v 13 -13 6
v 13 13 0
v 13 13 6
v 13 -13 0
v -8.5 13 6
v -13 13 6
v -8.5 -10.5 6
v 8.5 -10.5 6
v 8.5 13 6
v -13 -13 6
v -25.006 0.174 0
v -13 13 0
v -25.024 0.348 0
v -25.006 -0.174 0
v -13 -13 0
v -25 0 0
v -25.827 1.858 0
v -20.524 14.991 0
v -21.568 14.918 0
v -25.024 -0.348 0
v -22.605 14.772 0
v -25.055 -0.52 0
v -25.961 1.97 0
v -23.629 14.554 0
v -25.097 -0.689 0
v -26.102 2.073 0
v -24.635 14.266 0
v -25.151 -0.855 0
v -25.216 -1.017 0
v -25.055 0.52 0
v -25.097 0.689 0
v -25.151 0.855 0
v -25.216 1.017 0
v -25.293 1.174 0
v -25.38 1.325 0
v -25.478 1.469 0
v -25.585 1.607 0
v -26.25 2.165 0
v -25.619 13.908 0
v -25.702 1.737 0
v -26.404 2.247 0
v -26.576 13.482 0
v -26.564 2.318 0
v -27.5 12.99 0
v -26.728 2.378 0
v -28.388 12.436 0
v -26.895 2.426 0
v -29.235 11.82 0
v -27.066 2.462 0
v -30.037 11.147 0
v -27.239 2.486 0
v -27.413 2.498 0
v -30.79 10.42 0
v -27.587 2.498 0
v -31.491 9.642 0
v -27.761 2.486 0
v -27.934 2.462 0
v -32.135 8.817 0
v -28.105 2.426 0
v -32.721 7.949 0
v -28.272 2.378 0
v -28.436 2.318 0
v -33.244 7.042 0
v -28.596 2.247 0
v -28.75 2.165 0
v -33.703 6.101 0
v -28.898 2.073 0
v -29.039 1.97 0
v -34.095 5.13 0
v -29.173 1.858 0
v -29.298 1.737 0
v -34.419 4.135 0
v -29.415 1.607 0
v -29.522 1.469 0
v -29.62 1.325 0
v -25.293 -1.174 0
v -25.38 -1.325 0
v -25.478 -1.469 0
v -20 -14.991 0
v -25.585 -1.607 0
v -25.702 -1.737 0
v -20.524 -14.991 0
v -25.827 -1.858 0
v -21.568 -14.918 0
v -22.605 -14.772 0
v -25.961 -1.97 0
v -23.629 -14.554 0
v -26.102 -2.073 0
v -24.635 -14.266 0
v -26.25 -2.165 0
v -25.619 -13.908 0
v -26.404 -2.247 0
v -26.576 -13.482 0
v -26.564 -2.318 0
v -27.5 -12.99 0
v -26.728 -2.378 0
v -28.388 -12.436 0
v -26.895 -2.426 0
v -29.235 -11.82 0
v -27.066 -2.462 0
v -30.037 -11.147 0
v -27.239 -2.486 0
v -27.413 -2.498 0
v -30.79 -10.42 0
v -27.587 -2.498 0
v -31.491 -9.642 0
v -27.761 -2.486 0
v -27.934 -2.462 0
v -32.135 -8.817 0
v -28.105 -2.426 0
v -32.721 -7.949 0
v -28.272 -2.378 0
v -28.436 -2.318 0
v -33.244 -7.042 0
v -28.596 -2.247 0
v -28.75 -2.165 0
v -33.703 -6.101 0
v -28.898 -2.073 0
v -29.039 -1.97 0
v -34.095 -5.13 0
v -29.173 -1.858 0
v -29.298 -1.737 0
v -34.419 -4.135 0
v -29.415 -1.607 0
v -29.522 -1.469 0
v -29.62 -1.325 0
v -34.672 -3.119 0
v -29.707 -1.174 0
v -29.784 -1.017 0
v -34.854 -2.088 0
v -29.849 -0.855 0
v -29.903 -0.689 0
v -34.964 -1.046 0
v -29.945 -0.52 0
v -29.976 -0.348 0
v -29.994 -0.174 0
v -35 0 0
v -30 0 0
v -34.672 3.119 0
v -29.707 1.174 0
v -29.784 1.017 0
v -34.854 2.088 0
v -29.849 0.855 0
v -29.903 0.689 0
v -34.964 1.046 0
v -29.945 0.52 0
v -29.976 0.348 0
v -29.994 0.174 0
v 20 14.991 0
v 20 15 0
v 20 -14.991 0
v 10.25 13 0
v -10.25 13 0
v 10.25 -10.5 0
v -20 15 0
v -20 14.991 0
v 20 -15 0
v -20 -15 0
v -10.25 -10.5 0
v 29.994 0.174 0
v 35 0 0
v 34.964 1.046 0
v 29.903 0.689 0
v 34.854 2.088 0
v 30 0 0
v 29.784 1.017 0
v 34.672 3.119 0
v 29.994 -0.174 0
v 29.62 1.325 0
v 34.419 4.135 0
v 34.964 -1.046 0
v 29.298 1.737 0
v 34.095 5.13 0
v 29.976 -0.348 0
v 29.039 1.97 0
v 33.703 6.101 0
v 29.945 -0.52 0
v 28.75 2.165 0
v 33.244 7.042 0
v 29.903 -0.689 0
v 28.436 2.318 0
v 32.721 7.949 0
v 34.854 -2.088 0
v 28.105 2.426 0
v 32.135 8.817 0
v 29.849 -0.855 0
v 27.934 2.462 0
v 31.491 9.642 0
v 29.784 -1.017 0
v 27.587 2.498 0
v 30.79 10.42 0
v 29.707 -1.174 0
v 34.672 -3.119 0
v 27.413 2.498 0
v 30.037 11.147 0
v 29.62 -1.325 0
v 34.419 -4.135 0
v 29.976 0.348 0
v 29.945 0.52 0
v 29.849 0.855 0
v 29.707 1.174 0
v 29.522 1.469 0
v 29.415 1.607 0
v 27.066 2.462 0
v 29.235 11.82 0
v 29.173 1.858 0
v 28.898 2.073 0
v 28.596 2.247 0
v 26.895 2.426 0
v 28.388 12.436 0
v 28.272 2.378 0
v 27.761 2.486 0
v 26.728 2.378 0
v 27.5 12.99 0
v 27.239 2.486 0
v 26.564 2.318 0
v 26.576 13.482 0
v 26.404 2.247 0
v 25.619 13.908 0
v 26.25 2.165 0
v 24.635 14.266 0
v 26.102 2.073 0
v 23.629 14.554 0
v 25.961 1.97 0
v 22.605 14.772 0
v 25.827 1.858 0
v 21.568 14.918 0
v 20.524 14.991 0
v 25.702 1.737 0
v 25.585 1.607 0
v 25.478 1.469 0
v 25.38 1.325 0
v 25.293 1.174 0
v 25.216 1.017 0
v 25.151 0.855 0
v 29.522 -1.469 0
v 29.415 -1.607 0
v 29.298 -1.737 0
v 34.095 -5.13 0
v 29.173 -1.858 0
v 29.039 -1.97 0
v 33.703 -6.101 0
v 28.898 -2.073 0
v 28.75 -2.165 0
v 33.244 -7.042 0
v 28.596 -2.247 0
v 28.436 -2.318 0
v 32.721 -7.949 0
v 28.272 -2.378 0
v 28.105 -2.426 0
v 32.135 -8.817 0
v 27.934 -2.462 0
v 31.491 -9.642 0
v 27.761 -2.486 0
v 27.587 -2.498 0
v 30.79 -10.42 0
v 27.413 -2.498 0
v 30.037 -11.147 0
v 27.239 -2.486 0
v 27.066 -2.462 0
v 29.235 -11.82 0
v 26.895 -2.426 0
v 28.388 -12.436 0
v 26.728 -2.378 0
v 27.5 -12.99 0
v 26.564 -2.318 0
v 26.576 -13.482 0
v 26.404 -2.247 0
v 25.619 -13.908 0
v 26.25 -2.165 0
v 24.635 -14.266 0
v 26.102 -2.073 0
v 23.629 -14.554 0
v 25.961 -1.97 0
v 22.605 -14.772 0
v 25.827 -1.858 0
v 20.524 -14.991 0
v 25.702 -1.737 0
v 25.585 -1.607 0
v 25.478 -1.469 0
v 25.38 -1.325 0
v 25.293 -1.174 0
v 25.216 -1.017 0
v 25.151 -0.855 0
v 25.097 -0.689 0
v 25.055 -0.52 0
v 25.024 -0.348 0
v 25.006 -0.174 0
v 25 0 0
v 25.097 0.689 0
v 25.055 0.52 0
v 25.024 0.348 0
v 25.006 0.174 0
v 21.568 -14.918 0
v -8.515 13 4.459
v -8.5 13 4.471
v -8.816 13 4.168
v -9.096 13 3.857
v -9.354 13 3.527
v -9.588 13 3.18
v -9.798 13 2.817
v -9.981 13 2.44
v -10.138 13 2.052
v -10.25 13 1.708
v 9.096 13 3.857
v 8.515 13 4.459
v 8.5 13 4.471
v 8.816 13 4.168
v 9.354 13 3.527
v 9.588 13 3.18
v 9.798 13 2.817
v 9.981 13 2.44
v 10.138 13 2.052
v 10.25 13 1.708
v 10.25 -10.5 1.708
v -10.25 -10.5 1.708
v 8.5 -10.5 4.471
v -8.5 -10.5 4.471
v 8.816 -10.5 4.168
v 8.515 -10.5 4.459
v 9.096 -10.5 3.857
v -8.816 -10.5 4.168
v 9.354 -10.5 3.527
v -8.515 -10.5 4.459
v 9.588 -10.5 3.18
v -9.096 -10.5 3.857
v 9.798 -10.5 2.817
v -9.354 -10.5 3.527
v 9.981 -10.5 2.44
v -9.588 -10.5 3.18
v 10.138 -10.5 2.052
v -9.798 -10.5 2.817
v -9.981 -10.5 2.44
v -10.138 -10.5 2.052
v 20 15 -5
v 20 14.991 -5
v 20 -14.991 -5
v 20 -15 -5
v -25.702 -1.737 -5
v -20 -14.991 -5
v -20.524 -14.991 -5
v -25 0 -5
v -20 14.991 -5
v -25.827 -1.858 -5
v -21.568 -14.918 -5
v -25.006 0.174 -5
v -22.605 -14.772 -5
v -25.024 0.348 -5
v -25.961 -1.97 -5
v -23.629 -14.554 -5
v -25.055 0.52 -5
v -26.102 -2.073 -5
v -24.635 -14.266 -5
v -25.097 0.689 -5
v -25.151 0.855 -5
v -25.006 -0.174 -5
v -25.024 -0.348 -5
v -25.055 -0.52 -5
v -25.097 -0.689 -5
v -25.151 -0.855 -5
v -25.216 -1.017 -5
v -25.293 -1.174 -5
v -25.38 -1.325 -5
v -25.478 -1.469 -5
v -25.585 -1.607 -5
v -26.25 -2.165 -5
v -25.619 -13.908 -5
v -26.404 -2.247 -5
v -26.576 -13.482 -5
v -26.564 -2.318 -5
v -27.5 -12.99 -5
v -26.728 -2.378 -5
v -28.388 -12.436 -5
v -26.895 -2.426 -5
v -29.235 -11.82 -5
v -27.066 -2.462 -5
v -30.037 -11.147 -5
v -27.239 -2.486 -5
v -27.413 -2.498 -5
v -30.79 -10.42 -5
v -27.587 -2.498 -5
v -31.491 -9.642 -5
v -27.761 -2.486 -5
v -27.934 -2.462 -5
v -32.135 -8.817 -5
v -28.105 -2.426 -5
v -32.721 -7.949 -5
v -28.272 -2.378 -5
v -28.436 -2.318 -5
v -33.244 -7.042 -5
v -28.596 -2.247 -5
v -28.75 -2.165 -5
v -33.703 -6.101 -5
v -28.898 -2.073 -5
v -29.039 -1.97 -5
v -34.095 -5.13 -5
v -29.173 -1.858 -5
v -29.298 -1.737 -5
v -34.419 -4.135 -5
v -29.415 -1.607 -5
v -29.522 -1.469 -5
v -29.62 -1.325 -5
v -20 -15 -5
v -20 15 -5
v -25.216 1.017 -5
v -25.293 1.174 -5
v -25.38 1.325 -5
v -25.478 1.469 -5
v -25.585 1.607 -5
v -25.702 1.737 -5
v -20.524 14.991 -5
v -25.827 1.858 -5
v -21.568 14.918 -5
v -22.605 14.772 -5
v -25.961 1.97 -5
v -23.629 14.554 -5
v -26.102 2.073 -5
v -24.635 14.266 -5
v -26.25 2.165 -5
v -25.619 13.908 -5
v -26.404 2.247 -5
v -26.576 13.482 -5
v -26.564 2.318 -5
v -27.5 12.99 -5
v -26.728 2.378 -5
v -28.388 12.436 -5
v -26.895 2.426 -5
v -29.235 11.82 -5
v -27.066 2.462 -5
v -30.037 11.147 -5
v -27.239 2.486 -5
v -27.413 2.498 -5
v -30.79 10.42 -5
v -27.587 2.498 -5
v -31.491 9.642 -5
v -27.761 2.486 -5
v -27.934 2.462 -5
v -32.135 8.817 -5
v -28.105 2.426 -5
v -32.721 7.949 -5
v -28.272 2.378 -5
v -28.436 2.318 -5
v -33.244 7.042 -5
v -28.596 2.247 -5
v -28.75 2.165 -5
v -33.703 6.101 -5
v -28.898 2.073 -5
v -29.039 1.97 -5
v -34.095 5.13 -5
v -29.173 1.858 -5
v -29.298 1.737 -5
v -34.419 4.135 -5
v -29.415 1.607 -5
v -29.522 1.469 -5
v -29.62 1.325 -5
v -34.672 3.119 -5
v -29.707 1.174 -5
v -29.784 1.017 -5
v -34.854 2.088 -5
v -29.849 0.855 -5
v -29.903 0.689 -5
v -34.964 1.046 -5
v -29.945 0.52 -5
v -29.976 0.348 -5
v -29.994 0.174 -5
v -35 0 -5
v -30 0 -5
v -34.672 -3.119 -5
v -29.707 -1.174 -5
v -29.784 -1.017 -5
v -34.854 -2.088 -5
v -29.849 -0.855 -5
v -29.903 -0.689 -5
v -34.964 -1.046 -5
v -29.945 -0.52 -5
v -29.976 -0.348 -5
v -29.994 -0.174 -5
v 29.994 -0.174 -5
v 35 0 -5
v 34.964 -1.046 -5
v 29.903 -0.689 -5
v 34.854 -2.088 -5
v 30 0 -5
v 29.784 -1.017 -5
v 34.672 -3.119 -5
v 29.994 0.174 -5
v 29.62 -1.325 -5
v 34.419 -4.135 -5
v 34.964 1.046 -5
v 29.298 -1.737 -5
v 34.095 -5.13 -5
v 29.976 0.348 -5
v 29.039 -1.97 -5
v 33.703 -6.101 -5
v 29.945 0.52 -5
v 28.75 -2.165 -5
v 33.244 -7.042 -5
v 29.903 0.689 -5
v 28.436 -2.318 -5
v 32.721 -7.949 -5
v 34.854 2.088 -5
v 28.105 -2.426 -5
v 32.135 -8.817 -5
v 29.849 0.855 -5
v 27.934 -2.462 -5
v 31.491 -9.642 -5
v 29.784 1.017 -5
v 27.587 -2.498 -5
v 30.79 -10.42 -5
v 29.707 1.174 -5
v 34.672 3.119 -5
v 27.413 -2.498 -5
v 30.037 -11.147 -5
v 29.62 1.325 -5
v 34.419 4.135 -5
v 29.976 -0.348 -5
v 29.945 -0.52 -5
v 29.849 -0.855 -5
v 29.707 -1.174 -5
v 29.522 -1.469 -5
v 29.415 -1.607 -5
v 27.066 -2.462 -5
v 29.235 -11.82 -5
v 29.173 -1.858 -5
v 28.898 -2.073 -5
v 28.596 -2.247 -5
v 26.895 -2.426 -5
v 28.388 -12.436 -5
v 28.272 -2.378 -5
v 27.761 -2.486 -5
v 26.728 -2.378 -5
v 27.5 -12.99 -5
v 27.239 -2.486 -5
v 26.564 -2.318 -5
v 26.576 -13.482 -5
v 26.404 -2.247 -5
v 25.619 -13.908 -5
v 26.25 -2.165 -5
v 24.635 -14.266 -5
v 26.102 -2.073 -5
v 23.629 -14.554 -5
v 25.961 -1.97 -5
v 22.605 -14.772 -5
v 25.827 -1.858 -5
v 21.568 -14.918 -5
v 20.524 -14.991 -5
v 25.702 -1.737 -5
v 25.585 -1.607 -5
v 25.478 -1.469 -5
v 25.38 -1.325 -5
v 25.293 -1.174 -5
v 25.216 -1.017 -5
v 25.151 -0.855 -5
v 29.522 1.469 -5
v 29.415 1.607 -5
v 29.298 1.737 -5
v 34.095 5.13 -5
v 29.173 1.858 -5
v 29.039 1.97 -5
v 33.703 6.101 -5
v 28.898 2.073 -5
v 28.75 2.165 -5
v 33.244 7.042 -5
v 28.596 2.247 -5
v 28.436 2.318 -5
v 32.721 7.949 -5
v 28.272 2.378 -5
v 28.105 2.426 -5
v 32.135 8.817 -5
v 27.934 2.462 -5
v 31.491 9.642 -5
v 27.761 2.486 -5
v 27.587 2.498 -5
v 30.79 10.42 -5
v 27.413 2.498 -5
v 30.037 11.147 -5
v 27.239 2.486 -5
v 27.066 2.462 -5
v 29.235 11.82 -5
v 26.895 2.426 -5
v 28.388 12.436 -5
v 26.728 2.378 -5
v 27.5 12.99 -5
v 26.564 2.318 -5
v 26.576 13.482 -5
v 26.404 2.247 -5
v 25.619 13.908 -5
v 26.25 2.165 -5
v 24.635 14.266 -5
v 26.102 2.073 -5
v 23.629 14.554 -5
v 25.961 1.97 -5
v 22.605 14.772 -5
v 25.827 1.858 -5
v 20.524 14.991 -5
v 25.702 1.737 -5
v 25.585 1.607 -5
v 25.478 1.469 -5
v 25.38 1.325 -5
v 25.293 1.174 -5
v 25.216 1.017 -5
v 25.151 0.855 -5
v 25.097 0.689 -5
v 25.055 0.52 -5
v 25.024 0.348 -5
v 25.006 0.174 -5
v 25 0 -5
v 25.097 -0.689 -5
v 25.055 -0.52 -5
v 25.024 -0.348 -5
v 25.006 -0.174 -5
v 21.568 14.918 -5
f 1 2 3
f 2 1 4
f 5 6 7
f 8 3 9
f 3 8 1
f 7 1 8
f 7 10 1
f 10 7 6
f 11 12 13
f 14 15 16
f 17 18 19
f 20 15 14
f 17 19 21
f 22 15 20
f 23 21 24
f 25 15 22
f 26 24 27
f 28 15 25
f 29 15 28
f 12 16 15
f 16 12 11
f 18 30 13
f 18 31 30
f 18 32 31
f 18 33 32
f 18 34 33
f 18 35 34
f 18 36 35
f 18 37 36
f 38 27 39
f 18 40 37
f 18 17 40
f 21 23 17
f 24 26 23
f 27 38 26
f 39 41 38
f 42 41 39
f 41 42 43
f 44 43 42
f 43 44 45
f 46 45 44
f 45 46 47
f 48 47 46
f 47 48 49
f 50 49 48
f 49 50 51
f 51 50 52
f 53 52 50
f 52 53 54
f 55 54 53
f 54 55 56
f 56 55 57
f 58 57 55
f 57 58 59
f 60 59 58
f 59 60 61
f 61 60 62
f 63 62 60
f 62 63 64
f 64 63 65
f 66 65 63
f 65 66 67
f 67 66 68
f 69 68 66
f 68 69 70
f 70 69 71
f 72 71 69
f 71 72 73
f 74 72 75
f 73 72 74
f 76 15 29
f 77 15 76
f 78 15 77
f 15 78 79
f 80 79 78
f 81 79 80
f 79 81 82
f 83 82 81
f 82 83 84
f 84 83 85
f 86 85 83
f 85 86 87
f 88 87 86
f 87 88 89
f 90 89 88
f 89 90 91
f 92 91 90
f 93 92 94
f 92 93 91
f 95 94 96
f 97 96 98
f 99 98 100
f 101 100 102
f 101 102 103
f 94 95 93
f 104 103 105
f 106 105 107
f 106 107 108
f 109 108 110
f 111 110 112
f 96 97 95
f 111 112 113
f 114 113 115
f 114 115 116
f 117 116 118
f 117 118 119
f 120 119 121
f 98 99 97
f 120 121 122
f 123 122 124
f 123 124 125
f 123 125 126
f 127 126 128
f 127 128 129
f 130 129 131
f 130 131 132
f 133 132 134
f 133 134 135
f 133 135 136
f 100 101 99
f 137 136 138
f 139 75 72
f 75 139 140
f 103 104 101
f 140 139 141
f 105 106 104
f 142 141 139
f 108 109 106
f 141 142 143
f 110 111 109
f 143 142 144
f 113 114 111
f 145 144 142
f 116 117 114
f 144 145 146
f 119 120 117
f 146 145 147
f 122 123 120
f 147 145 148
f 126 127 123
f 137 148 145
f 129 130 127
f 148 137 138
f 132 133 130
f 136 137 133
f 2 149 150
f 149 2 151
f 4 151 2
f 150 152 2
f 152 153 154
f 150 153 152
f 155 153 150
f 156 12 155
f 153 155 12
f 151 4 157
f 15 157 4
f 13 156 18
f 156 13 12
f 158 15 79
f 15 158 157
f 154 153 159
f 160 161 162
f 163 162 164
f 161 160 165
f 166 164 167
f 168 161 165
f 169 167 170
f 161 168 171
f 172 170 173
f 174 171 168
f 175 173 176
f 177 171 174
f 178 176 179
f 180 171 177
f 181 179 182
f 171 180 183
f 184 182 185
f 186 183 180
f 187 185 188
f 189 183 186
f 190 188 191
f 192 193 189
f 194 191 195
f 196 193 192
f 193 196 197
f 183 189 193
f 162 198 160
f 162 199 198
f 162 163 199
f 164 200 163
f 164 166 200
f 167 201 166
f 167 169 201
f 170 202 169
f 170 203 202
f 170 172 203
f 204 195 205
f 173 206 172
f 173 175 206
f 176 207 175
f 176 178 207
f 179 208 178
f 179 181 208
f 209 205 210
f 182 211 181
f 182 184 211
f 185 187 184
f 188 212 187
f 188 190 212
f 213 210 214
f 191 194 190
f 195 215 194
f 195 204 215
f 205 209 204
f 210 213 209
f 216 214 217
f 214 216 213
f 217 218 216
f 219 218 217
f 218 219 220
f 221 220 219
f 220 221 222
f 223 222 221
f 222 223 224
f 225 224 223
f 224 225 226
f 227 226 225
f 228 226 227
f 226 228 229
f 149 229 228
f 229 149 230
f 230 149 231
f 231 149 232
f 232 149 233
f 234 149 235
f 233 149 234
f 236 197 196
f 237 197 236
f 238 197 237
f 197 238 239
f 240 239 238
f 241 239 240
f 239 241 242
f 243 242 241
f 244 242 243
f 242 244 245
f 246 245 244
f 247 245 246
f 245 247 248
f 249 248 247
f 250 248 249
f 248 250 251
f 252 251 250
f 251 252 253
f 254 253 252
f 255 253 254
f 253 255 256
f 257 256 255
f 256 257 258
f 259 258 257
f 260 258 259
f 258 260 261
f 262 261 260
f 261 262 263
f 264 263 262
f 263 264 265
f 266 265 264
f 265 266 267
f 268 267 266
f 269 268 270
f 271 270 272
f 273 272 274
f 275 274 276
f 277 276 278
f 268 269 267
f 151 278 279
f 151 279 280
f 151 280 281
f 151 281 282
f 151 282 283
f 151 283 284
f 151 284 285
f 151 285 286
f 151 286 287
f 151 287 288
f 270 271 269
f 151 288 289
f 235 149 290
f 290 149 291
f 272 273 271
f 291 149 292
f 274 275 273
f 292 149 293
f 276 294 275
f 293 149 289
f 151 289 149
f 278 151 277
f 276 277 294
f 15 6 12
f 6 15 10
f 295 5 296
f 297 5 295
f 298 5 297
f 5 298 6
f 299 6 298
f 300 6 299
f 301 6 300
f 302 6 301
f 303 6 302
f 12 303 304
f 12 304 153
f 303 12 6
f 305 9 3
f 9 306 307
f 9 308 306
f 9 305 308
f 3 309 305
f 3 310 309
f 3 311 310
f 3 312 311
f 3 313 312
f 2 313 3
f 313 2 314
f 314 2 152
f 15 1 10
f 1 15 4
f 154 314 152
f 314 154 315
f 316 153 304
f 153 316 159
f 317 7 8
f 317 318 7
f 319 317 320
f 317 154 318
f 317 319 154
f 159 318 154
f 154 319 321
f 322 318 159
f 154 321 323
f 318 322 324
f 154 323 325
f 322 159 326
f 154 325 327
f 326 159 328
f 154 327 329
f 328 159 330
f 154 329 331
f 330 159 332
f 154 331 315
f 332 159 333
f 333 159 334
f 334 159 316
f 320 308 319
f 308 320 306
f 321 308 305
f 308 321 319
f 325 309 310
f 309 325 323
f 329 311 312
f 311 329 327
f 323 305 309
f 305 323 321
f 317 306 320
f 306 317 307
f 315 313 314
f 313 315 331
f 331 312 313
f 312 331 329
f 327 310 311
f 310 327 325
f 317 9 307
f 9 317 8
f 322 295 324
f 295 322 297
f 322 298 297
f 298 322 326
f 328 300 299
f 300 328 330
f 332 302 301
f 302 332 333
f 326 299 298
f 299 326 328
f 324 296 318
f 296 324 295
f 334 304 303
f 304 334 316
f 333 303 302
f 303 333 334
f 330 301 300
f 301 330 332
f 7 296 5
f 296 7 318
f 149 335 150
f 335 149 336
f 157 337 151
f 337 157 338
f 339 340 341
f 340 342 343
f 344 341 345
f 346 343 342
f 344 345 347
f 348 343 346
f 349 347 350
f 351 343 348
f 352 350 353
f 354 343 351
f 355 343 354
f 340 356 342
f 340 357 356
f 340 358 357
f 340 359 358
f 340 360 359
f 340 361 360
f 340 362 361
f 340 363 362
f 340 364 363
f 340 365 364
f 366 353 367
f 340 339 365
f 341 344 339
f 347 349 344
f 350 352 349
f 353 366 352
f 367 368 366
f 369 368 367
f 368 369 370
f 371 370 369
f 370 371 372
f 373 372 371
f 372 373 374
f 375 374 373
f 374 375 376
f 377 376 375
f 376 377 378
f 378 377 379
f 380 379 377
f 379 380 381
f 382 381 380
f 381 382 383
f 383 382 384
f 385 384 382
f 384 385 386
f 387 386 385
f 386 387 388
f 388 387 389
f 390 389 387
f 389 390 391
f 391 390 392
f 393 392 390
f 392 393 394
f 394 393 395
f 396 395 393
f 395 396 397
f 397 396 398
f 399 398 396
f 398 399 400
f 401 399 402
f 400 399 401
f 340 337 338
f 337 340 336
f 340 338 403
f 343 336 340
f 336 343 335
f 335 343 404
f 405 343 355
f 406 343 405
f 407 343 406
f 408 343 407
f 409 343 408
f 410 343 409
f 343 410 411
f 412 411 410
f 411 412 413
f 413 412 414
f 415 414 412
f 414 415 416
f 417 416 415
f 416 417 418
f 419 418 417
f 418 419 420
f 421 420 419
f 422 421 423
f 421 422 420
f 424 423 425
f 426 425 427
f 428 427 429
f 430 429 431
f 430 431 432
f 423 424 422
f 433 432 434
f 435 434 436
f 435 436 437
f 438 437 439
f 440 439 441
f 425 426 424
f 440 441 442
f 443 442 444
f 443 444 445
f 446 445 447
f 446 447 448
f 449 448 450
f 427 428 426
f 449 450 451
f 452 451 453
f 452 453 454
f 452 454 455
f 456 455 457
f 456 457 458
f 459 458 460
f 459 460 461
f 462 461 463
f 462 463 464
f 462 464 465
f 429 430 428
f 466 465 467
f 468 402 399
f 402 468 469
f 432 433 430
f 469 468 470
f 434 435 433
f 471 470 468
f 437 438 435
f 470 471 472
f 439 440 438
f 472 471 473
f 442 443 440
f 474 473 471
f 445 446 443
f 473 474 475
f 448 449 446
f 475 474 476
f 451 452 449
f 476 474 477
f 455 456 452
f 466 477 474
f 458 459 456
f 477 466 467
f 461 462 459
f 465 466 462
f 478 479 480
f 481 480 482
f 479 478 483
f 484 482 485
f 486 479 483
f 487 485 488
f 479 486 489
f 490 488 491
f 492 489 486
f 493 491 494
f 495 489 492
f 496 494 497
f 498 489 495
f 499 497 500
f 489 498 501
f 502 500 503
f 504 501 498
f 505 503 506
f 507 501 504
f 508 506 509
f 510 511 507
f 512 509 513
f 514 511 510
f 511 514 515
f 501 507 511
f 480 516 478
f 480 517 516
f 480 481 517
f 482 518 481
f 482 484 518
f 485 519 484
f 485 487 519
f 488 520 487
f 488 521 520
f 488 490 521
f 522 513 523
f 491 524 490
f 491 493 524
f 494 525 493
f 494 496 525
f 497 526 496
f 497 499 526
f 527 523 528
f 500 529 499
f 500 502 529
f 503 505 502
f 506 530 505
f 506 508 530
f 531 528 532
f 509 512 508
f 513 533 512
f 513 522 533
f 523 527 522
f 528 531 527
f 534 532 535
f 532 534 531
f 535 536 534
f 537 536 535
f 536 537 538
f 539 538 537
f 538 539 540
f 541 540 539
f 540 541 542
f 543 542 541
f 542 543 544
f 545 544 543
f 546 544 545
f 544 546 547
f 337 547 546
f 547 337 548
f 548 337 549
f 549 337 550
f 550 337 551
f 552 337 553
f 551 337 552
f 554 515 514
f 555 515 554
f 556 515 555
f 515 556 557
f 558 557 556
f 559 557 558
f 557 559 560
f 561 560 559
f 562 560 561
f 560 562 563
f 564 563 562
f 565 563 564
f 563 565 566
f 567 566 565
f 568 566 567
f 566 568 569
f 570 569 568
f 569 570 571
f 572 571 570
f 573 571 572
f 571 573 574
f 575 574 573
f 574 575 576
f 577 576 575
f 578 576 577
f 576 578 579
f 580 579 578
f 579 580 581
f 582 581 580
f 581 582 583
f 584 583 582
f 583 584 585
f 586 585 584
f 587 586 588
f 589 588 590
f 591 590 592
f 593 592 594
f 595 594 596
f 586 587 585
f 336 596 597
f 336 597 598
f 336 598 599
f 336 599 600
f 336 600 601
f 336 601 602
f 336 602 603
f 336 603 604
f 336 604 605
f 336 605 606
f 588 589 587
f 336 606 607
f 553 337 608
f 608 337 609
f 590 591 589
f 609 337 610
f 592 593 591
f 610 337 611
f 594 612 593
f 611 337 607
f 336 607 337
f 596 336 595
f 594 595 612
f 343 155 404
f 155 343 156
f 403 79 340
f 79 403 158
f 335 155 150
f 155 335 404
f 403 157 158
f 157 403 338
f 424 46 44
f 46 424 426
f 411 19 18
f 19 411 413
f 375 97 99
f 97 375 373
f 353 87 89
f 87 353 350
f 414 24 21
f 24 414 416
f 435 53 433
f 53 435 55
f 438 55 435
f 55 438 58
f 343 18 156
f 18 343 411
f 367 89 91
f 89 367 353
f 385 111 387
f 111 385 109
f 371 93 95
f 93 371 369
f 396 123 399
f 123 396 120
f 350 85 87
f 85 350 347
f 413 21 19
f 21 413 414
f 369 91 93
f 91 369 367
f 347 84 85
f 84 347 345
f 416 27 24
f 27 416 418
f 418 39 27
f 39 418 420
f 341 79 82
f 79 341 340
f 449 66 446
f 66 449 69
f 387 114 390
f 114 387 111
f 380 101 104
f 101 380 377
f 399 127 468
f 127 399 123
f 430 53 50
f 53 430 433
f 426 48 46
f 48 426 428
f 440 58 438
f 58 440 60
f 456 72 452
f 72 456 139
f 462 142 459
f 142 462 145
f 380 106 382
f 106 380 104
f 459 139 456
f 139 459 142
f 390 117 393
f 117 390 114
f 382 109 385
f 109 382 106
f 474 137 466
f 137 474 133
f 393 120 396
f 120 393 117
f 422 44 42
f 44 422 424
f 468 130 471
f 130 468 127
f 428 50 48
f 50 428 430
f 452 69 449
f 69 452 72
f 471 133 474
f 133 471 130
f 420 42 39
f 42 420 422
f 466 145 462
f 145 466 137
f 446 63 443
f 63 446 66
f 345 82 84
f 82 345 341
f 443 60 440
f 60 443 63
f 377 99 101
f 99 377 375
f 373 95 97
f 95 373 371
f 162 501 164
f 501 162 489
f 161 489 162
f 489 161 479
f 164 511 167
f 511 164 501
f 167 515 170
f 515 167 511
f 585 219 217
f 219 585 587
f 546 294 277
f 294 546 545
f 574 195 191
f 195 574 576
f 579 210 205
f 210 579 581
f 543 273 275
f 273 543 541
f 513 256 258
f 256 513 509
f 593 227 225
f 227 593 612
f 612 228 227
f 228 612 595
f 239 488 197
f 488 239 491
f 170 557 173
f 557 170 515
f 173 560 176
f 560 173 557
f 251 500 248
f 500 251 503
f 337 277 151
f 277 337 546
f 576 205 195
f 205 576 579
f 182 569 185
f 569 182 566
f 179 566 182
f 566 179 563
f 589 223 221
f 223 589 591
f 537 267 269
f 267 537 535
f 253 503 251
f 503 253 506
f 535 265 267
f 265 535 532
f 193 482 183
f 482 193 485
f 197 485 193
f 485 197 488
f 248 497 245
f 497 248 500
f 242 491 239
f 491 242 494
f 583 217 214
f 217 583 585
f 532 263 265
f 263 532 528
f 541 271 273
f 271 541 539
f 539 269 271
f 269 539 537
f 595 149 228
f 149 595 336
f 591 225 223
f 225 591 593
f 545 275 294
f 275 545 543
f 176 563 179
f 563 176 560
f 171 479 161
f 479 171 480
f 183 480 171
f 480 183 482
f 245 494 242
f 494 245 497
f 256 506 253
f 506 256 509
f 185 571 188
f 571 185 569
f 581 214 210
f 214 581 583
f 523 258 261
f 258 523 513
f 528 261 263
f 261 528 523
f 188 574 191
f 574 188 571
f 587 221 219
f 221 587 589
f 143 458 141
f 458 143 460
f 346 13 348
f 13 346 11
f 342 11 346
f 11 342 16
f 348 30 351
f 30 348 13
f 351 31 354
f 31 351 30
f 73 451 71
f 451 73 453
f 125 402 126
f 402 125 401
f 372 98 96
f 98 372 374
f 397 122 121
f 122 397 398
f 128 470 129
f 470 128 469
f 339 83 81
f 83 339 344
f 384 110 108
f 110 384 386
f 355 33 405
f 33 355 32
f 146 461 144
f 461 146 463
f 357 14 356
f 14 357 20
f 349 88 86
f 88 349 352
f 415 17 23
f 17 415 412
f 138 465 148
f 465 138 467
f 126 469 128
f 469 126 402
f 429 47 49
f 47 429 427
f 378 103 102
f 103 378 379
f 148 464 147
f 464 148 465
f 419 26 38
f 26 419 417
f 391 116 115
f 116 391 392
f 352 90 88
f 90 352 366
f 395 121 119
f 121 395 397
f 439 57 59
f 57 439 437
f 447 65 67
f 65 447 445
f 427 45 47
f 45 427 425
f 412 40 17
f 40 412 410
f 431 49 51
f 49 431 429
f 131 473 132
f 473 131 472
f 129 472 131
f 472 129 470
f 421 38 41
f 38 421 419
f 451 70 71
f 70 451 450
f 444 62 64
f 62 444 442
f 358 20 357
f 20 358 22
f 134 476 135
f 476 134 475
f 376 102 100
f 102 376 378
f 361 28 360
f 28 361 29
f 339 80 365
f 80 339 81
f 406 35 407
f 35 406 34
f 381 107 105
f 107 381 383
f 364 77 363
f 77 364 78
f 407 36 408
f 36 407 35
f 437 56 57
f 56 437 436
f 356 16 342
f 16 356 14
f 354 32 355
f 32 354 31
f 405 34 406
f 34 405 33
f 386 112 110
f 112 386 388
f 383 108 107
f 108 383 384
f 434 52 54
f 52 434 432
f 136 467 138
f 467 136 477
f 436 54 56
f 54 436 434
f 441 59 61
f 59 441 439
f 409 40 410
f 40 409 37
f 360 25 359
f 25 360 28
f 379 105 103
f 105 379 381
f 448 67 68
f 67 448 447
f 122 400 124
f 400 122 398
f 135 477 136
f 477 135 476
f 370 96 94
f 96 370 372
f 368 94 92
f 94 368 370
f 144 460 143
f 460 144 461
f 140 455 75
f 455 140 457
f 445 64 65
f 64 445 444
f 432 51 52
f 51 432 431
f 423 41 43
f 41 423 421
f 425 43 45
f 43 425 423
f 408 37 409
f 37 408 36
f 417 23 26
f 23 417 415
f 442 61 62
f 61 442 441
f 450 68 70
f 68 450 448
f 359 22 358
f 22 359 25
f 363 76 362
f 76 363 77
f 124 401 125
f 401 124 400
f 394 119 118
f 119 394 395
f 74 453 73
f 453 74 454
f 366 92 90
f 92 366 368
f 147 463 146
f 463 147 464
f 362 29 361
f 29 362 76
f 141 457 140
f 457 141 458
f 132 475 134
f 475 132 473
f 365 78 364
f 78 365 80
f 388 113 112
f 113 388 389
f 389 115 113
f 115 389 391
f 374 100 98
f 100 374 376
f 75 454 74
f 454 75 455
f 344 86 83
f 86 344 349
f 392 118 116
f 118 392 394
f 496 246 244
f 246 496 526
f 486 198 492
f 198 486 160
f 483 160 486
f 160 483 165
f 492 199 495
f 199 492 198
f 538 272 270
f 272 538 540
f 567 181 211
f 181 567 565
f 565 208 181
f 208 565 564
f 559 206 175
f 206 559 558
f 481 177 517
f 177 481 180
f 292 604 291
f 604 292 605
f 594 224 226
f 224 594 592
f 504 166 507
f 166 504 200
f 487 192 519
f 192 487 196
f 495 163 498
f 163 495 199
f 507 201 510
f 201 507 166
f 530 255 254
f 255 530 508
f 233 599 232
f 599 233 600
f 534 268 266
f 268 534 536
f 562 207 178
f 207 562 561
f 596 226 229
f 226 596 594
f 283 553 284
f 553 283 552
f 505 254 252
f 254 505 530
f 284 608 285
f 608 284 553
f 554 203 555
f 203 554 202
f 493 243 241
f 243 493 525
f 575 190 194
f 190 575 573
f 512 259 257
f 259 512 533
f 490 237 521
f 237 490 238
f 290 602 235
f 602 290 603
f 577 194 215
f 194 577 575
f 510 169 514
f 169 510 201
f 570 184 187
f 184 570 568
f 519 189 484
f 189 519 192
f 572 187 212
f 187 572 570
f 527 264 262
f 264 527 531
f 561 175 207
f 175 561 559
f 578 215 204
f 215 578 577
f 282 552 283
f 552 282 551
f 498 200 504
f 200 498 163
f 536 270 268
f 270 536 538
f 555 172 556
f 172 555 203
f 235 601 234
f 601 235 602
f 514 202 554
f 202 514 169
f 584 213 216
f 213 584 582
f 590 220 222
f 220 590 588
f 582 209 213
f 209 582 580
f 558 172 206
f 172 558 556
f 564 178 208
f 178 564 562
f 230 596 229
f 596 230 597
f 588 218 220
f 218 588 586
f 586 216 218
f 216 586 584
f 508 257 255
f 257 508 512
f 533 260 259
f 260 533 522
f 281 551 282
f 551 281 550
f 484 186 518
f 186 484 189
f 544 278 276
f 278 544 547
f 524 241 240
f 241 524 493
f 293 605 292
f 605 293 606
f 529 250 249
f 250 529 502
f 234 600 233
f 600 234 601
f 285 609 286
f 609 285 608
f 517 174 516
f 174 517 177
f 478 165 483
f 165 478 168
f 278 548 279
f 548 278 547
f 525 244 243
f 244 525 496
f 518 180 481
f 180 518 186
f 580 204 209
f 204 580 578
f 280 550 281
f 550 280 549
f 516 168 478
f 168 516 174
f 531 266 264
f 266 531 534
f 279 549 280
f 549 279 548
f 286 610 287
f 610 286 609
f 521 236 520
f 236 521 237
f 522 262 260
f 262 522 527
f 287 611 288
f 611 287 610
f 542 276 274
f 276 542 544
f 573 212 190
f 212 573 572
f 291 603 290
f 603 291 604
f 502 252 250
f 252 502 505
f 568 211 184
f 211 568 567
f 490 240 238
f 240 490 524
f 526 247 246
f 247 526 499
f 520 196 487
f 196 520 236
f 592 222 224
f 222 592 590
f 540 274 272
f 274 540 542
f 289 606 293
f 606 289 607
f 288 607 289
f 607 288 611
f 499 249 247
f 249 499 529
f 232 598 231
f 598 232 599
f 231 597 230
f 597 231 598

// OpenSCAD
$fn=90;

module bikeMount() {
    difference() {
        union() {
            cube([40, 30, 5], center=true);
            translate([-20, 0, 0]) cylinder(r=15, h=5, center = true);
            translate([20, 0, 0]) cylinder(r=15, h=5, center = true);
        };
        translate([-27.5, 0, 0]) cylinder(r=2.5, h=5, center = true);
        translate([27.5, 0, 0]) cylinder(r=2.5, h=5, center = true);
    };
};

module innerRadius(radius, depth) {
    intersection() {
        difference() {
            cube([radius, radius, depth], center=true);
            translate([-radius / 2, -radius / 2, 0]) cylinder(r=radius, h=depth, center=true);
        };
        translate([radius / 3, 0, 0]) cube([radius / 3, radius, depth], center=true);
    };
};

module lightClip() {
    width=26;
    depth=26;
    difference() {
        cube([width, depth, 6], center = true);
        translate([0, 2.5, 0]) cube([20.5, depth, 6], center = true);
    };
    translate([7.5, 1.25, 0]) rotate([90, 0, 0]) innerRadius(6, 23.5);
    translate([-7.5, 1.25, 0]) rotate([90, 0, 180]) innerRadius(6, 23.5);
};

translate([0, 0, -2.5]) bikeMount();
translate([0, 0, 3]) lightClip();
